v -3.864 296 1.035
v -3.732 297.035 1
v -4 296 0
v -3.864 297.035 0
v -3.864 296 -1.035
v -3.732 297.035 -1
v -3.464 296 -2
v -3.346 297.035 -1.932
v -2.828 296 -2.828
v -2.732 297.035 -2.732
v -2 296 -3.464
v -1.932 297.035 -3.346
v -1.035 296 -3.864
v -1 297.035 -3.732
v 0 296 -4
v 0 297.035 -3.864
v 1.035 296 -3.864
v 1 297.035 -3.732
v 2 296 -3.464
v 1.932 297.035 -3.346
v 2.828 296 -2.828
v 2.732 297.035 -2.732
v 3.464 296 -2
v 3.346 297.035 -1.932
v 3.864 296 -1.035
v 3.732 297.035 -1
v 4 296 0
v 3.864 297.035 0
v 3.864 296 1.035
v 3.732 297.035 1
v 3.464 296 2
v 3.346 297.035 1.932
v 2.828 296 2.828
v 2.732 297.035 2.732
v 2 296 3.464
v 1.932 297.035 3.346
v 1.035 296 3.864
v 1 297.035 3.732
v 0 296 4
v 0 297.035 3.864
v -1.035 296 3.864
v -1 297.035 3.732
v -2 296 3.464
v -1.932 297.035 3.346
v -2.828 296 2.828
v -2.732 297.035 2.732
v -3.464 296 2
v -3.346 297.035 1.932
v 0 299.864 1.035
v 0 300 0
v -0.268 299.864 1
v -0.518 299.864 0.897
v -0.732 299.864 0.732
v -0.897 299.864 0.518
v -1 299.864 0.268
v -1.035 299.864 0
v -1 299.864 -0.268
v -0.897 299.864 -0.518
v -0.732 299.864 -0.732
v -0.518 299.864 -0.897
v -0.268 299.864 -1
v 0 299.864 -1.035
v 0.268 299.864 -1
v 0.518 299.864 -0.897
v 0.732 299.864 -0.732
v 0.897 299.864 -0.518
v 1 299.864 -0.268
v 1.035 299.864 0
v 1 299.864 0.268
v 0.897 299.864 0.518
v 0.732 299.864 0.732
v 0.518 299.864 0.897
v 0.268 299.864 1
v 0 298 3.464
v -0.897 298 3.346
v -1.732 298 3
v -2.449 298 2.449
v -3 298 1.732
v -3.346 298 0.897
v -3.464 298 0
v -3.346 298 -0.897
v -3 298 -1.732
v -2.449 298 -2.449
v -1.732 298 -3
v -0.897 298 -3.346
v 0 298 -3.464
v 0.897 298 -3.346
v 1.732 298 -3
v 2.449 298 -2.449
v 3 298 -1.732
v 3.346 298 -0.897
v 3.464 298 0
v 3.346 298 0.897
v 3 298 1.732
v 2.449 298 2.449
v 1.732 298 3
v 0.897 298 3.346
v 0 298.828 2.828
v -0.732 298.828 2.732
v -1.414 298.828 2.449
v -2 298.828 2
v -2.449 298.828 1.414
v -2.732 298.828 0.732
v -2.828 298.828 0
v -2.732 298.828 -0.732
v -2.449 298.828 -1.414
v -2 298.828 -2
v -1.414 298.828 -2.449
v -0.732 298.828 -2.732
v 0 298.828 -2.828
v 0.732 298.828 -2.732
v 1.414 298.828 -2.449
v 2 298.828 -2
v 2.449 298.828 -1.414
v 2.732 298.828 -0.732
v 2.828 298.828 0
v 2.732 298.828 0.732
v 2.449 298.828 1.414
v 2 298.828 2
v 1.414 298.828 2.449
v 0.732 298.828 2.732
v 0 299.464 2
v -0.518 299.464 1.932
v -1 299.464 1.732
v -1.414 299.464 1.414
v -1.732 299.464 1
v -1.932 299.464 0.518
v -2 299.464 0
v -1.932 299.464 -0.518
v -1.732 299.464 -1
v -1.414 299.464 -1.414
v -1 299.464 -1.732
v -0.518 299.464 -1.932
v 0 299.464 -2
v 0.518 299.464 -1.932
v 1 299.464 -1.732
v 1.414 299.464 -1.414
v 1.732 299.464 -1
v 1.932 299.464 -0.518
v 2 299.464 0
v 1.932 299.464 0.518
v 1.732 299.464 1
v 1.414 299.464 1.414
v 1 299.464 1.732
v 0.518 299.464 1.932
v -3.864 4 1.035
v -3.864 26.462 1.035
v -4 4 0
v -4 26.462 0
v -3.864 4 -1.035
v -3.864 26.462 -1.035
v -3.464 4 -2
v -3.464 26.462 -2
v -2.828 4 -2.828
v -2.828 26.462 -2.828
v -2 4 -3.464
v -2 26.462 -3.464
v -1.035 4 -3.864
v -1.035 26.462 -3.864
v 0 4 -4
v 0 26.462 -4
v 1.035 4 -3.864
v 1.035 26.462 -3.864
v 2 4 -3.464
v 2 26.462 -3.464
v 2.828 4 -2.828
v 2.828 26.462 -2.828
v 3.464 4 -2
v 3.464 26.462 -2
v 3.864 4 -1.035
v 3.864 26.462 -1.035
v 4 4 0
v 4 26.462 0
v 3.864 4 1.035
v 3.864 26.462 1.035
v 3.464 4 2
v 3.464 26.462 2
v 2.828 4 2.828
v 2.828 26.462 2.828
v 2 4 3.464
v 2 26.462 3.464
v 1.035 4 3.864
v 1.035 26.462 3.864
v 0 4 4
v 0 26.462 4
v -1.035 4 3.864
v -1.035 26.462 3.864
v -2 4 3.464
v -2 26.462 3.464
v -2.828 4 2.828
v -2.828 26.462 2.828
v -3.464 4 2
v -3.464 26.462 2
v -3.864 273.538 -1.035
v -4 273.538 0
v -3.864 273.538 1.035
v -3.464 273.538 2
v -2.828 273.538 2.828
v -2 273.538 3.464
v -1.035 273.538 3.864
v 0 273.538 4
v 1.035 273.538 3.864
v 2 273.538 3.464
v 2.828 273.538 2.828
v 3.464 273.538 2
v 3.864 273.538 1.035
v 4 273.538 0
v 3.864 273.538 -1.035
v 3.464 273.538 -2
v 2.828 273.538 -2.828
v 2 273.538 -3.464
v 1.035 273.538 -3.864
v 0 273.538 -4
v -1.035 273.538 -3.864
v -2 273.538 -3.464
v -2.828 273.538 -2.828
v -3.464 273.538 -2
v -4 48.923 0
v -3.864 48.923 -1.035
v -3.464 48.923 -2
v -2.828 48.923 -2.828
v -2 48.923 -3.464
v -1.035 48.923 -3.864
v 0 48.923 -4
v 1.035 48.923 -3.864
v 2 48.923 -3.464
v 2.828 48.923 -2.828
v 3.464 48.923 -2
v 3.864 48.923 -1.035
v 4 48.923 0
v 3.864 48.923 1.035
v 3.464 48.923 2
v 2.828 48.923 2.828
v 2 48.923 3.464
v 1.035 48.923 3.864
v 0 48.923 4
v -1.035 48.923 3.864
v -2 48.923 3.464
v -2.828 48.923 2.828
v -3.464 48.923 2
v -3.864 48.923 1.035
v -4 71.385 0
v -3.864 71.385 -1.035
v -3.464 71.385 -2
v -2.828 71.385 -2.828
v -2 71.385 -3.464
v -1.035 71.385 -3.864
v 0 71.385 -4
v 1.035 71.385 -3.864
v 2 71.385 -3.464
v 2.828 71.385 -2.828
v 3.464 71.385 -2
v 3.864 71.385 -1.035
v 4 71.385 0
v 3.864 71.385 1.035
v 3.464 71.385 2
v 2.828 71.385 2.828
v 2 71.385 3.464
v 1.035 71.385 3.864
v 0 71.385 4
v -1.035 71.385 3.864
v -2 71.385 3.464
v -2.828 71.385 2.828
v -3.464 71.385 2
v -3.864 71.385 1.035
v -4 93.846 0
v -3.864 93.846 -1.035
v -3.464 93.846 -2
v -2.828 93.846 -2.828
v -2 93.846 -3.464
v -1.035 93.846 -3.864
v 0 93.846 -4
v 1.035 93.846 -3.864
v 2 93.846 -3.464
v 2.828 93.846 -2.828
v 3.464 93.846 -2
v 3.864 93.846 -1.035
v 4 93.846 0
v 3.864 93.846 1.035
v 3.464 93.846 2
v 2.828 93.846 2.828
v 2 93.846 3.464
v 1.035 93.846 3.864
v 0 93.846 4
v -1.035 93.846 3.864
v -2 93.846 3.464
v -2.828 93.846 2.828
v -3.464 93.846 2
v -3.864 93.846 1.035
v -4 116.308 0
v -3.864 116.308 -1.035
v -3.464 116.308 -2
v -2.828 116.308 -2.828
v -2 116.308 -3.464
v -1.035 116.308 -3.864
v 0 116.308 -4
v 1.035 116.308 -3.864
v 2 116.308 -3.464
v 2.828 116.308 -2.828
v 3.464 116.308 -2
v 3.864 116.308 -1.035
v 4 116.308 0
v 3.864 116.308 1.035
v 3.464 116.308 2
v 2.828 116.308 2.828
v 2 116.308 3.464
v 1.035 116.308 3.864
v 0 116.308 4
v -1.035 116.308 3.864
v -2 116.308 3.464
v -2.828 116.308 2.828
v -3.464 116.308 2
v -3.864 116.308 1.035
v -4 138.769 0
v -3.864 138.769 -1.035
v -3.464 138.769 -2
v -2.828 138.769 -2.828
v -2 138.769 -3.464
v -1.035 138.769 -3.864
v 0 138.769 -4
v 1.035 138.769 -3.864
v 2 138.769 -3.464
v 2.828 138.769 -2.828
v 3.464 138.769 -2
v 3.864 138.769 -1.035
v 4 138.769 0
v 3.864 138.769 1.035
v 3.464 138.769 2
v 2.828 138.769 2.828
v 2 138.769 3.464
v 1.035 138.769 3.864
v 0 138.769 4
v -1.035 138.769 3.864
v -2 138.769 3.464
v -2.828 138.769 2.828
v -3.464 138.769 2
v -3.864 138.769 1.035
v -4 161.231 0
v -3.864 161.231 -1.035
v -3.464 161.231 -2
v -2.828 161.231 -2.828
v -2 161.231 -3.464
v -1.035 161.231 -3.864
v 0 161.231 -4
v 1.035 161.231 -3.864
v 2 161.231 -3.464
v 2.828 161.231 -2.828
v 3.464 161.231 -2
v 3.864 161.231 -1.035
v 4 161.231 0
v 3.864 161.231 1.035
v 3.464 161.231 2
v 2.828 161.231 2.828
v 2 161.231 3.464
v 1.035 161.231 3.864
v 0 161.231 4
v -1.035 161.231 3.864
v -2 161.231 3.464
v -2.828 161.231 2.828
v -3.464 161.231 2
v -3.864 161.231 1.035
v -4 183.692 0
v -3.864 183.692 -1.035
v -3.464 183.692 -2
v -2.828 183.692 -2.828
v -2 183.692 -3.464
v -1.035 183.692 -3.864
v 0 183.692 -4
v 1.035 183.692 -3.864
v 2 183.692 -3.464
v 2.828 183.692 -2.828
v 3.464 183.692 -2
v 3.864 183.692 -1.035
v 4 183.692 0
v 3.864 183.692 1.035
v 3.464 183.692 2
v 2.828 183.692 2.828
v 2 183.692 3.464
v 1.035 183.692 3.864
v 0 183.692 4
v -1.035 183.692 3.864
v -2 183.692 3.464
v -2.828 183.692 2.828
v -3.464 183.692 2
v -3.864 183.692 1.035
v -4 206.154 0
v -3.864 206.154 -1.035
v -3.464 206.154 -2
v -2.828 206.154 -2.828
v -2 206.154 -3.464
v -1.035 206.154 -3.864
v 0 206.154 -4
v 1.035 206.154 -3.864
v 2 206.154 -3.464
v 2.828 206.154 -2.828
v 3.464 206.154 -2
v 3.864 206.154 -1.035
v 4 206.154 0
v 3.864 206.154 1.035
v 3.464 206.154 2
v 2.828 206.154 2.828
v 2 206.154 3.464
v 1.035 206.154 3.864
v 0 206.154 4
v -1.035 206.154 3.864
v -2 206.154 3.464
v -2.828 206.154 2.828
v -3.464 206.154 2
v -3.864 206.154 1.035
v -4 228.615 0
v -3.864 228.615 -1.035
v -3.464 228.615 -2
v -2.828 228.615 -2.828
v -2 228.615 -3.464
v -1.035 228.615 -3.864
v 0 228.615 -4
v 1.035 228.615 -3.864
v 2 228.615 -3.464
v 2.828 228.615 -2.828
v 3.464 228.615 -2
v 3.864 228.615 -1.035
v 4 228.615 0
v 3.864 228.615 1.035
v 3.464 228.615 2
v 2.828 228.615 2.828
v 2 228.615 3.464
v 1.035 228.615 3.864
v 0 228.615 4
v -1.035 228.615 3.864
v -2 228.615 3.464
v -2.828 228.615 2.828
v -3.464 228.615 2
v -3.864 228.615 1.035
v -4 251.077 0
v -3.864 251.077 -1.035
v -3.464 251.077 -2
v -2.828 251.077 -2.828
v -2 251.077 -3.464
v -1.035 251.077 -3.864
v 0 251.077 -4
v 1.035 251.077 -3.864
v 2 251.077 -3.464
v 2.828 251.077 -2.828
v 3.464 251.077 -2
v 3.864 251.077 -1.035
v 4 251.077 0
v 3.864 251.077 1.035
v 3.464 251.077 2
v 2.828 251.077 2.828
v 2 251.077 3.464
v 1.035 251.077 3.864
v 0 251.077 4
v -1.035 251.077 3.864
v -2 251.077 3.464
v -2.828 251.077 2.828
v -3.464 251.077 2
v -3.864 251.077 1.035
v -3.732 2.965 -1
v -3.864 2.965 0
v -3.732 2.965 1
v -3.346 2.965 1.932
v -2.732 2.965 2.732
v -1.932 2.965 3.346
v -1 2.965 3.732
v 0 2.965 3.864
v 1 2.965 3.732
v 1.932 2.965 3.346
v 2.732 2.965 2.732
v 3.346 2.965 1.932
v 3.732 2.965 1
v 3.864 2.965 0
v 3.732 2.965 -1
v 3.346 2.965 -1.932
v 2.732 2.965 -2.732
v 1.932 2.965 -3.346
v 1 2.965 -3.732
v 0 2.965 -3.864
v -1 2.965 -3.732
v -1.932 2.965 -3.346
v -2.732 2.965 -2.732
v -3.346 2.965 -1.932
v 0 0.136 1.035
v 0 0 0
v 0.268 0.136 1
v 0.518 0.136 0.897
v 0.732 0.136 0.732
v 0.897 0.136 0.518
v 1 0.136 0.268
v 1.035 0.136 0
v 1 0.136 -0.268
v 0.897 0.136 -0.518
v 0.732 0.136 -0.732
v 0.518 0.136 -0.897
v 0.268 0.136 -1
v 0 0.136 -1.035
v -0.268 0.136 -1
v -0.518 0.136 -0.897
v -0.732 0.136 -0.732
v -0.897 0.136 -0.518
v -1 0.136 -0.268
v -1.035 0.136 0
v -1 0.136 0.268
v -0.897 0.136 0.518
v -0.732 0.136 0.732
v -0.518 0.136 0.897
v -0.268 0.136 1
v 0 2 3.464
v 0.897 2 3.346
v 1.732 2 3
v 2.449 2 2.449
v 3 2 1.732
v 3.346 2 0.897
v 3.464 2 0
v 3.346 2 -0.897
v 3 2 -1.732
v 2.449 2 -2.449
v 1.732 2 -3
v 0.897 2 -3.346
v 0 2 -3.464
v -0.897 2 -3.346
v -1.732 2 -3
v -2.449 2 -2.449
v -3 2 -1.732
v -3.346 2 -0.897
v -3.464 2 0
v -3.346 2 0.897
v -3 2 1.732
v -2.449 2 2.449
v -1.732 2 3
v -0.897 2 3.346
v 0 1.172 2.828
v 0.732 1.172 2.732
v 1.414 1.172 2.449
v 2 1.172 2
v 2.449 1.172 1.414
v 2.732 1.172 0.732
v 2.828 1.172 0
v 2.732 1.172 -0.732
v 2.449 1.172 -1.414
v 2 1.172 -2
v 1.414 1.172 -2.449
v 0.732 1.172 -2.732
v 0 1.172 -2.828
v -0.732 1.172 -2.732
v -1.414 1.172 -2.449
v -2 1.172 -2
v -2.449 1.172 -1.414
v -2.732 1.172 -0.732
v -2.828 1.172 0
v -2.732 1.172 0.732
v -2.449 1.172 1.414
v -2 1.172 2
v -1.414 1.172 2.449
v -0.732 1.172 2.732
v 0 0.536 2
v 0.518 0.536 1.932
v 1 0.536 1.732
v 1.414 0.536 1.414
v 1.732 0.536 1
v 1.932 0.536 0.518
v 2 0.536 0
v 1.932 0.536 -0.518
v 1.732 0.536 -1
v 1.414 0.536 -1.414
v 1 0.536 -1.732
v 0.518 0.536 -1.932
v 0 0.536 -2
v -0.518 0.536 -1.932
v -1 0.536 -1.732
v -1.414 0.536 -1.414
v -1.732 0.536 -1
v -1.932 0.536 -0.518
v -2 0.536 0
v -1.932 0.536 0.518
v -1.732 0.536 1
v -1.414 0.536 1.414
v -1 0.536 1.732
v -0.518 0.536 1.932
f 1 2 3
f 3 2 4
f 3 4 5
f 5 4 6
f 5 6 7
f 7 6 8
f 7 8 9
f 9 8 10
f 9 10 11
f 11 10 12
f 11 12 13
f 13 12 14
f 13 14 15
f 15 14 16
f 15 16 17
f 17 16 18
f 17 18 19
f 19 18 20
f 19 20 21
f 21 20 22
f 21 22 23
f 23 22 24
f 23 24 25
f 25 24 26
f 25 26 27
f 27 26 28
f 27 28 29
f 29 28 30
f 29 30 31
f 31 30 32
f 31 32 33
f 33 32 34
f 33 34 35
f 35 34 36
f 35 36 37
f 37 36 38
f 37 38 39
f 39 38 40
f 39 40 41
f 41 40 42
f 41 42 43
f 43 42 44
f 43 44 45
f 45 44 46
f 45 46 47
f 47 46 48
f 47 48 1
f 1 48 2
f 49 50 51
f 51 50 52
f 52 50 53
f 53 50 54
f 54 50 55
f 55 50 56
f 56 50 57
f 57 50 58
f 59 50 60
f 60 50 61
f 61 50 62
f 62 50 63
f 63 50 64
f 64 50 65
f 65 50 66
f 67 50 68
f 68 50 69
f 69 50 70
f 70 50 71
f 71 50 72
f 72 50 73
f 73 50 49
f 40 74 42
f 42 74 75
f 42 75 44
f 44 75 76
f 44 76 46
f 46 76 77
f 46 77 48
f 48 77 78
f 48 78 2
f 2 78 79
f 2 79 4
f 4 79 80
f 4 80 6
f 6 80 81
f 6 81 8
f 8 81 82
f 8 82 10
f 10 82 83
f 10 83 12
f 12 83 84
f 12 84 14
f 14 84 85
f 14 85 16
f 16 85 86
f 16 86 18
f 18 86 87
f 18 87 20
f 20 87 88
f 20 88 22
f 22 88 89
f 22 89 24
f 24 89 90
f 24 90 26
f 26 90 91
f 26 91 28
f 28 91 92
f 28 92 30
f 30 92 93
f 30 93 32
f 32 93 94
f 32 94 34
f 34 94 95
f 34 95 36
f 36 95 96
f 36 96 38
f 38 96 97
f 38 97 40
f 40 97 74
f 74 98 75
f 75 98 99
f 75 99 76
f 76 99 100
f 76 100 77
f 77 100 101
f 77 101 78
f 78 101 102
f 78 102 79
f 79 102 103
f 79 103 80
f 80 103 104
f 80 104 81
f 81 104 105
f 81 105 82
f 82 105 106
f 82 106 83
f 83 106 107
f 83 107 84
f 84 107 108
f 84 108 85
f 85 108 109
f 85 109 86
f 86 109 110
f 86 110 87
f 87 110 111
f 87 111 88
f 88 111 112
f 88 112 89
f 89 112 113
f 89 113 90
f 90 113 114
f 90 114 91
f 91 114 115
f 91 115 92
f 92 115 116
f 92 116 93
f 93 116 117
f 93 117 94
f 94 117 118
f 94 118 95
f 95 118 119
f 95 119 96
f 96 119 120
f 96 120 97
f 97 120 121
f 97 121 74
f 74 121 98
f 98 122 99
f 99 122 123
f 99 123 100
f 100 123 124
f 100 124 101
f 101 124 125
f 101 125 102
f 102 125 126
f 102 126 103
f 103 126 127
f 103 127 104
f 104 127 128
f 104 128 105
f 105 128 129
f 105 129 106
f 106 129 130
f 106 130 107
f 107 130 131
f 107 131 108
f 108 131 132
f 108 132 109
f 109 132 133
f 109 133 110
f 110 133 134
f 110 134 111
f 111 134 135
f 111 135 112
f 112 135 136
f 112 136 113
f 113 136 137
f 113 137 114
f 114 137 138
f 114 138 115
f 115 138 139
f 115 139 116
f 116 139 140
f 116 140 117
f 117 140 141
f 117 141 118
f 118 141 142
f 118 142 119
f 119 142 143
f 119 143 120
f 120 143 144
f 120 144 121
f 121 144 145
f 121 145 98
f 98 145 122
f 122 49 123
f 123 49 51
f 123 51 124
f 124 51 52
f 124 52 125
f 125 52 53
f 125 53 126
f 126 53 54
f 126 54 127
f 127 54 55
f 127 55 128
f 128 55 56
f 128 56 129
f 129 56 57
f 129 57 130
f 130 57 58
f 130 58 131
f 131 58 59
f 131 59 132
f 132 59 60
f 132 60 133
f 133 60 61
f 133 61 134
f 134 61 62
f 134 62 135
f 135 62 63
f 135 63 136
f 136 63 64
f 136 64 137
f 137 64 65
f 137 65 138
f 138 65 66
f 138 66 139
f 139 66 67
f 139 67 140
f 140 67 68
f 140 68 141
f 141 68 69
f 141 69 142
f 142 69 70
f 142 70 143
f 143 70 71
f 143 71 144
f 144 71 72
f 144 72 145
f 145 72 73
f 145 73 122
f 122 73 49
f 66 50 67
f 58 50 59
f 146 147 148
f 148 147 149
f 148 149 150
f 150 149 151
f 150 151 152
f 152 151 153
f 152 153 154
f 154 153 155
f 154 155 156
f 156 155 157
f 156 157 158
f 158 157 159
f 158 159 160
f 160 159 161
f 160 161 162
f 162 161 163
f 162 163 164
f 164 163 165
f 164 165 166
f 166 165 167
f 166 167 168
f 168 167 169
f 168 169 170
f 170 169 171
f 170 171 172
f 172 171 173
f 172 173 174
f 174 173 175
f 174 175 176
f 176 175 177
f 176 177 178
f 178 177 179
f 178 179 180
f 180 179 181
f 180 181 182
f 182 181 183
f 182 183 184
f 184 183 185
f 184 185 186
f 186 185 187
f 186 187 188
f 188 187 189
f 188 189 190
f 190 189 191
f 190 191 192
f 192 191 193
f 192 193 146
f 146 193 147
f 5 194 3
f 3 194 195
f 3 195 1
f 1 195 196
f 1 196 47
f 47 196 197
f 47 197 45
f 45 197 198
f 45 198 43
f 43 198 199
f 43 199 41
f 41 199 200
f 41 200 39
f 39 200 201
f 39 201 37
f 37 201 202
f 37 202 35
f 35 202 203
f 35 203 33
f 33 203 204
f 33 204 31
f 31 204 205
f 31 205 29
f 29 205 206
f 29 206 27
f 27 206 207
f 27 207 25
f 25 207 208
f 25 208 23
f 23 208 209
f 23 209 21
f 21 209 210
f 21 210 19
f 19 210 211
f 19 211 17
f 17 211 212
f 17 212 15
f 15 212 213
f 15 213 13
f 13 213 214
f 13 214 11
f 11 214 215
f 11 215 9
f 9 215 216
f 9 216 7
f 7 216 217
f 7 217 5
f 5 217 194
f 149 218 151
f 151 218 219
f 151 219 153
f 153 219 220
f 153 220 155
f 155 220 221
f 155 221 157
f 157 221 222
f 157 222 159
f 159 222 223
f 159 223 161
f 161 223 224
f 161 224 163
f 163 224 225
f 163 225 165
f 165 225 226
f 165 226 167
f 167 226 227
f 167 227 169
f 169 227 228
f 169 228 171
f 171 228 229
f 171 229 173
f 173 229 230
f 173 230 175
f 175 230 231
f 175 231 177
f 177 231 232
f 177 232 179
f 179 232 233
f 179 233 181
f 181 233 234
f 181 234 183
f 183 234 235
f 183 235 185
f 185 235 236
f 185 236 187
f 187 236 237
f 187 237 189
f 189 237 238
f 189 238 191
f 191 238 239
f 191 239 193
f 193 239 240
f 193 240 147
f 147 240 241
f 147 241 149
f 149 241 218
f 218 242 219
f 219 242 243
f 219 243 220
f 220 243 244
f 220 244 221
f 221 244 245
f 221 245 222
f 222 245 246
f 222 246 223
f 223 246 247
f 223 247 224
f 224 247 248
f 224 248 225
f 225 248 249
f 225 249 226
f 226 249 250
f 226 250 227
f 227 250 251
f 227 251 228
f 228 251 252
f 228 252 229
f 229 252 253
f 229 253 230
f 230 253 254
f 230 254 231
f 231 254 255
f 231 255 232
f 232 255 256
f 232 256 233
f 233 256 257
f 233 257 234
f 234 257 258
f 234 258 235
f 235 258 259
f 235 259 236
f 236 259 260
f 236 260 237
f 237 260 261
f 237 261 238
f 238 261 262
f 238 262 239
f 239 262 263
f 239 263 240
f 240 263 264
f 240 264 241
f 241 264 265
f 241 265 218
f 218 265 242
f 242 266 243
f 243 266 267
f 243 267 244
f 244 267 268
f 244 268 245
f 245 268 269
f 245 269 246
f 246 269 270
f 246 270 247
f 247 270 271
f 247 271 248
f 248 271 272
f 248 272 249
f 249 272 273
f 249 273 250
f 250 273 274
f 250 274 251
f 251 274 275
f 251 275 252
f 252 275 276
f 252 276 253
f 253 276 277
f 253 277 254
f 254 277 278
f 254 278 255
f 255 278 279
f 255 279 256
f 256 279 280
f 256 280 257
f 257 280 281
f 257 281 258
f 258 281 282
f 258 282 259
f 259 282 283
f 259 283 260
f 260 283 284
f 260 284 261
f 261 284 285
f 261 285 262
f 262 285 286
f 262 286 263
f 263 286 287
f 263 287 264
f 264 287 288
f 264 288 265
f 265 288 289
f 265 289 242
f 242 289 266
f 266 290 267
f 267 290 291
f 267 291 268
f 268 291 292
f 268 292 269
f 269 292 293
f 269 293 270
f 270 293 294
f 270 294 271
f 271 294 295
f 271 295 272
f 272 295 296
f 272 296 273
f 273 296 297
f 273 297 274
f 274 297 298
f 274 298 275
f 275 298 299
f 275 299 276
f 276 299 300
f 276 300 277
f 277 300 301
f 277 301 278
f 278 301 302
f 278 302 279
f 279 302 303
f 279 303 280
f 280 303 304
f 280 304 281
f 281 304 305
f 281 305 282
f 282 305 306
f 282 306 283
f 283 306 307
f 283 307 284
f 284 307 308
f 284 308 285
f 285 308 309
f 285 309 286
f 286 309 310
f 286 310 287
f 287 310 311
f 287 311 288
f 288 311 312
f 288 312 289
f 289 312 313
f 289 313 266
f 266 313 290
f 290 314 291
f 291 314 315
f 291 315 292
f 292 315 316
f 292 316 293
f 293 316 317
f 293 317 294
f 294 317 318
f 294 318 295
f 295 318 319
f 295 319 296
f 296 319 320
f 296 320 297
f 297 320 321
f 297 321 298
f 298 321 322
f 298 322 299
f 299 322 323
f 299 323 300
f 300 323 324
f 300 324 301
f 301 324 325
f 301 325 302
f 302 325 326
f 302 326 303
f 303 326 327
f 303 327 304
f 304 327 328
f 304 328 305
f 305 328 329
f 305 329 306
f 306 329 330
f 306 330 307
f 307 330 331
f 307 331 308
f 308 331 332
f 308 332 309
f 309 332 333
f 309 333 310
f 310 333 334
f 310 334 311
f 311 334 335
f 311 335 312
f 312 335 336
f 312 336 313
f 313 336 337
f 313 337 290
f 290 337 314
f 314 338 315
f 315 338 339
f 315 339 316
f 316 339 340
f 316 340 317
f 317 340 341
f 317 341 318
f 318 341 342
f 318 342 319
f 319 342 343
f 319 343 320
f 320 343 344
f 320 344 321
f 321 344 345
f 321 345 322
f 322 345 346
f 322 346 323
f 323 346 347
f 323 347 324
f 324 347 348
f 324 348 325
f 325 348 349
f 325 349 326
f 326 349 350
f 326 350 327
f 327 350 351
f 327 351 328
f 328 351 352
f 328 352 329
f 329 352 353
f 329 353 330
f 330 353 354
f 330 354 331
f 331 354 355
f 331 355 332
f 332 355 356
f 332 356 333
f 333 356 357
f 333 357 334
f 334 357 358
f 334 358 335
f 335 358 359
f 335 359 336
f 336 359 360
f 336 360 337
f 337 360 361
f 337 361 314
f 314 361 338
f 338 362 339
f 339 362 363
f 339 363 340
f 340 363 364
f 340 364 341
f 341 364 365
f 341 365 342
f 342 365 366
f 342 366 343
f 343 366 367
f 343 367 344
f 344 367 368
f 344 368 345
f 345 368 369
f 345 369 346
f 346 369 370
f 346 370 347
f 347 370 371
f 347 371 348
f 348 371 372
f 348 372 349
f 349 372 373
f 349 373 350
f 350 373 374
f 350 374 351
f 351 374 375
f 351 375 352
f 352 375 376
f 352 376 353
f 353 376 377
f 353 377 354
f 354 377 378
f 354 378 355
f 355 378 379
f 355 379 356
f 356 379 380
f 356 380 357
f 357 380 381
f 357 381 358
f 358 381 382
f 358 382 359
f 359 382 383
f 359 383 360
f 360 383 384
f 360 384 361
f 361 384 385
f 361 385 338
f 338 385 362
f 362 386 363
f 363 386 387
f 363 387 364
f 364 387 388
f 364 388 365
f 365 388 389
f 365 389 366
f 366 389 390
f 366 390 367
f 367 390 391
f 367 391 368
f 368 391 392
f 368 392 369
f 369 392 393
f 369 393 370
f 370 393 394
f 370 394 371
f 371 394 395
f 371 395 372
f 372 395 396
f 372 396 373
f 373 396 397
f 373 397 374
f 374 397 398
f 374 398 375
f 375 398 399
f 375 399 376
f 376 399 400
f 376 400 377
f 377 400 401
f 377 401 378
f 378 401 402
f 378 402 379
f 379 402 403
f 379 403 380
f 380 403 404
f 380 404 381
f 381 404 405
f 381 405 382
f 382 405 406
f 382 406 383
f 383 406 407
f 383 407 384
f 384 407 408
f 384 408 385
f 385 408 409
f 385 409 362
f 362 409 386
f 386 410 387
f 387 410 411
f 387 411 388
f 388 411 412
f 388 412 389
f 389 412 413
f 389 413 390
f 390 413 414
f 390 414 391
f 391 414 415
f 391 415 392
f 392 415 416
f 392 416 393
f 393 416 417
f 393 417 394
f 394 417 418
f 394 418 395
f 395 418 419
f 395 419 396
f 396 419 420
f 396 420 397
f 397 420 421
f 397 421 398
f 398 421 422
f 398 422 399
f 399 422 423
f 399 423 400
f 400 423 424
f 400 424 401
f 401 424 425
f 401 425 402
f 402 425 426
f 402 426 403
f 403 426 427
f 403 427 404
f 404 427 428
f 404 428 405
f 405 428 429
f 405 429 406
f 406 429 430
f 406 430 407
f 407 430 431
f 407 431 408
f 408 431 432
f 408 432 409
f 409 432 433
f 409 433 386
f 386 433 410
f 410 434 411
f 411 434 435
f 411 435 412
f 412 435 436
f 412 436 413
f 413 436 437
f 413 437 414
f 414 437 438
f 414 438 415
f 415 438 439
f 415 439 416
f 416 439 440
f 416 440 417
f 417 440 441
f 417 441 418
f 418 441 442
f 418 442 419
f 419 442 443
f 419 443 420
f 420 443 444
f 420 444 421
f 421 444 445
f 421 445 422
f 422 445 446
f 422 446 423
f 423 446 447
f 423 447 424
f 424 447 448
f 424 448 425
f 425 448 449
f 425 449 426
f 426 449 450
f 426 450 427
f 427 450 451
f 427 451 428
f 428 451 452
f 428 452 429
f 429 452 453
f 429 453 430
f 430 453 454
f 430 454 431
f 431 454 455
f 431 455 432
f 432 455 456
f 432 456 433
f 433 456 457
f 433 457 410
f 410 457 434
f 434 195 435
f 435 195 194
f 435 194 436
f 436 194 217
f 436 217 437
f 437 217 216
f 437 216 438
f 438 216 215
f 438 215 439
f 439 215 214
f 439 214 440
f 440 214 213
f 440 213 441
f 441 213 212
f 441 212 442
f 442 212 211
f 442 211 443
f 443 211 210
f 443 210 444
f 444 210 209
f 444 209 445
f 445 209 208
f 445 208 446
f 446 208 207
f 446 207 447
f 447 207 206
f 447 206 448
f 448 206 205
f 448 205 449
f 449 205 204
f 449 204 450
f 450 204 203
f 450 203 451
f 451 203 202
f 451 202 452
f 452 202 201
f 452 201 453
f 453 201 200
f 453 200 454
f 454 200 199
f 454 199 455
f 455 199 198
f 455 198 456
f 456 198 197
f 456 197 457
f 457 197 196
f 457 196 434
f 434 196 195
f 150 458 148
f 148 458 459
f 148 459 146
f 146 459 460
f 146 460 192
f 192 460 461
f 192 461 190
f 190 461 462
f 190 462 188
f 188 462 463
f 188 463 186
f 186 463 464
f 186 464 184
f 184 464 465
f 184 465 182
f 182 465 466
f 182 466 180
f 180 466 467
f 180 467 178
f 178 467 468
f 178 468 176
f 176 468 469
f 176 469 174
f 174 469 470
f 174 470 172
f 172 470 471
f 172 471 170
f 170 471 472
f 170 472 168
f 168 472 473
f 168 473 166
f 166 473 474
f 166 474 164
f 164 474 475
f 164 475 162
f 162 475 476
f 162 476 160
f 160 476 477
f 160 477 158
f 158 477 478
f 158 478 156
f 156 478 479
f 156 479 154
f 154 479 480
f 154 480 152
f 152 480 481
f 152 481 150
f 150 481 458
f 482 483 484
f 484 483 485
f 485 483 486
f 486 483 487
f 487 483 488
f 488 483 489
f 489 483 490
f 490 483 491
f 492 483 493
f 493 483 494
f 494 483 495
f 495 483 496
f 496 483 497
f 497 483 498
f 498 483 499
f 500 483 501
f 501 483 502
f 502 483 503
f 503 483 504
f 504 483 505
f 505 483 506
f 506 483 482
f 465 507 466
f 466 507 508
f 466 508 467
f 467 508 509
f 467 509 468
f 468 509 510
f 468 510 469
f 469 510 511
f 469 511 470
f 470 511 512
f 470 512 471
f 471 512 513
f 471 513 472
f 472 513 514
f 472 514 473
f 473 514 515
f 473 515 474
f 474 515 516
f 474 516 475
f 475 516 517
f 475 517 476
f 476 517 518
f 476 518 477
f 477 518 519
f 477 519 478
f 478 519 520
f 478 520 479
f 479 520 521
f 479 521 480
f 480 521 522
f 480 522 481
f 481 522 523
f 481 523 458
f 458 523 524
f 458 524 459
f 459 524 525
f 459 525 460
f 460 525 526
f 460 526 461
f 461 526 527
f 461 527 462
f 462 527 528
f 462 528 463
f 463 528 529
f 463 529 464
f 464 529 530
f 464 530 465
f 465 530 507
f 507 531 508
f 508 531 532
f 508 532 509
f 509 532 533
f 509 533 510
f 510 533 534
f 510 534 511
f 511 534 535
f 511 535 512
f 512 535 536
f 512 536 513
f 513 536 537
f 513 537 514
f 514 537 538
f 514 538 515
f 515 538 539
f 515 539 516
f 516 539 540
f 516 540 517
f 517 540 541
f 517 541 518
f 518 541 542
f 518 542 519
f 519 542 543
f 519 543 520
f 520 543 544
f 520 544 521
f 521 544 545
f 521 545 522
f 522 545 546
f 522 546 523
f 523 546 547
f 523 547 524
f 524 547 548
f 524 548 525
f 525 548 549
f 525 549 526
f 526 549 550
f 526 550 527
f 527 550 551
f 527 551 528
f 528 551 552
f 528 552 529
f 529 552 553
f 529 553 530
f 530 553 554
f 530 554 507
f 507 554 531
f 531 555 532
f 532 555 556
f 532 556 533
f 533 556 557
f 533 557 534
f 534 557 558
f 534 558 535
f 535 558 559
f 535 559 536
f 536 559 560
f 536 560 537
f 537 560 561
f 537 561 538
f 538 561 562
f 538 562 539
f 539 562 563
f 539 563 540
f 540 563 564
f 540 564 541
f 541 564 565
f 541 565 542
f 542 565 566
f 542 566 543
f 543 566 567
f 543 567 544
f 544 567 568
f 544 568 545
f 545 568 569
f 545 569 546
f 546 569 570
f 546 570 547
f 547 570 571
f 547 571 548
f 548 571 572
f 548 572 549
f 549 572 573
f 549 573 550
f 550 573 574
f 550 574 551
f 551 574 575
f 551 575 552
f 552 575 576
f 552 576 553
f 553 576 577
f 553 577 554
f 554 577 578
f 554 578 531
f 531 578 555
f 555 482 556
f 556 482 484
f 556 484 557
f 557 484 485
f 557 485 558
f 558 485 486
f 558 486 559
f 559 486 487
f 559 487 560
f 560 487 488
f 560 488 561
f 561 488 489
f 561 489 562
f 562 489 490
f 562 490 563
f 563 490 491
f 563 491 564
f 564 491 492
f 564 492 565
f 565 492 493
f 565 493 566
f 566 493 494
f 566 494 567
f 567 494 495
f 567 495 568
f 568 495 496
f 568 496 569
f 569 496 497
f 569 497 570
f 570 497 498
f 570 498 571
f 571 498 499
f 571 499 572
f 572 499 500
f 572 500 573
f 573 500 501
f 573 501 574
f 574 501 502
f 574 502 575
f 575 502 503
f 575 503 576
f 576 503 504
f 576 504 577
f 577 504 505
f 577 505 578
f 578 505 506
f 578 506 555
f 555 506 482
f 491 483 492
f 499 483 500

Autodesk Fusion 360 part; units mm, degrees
sketch "Skizze1" plane through (0, 0, 0) normal (0, 1, 0) x (1, 0, 0)
  circle A0 centre (0, 0) radius 4
  dimension "d1" = 8
extrude "Extrusion1" add sketch "Skizze1" along normal blind 300
fillet "Abrundung1" radius 4 1 edges at (-3.7293, 0, 1.4465)
fillet "Abrundung2" radius 4 1 edges at (-3.7293, 300, 1.4465)
